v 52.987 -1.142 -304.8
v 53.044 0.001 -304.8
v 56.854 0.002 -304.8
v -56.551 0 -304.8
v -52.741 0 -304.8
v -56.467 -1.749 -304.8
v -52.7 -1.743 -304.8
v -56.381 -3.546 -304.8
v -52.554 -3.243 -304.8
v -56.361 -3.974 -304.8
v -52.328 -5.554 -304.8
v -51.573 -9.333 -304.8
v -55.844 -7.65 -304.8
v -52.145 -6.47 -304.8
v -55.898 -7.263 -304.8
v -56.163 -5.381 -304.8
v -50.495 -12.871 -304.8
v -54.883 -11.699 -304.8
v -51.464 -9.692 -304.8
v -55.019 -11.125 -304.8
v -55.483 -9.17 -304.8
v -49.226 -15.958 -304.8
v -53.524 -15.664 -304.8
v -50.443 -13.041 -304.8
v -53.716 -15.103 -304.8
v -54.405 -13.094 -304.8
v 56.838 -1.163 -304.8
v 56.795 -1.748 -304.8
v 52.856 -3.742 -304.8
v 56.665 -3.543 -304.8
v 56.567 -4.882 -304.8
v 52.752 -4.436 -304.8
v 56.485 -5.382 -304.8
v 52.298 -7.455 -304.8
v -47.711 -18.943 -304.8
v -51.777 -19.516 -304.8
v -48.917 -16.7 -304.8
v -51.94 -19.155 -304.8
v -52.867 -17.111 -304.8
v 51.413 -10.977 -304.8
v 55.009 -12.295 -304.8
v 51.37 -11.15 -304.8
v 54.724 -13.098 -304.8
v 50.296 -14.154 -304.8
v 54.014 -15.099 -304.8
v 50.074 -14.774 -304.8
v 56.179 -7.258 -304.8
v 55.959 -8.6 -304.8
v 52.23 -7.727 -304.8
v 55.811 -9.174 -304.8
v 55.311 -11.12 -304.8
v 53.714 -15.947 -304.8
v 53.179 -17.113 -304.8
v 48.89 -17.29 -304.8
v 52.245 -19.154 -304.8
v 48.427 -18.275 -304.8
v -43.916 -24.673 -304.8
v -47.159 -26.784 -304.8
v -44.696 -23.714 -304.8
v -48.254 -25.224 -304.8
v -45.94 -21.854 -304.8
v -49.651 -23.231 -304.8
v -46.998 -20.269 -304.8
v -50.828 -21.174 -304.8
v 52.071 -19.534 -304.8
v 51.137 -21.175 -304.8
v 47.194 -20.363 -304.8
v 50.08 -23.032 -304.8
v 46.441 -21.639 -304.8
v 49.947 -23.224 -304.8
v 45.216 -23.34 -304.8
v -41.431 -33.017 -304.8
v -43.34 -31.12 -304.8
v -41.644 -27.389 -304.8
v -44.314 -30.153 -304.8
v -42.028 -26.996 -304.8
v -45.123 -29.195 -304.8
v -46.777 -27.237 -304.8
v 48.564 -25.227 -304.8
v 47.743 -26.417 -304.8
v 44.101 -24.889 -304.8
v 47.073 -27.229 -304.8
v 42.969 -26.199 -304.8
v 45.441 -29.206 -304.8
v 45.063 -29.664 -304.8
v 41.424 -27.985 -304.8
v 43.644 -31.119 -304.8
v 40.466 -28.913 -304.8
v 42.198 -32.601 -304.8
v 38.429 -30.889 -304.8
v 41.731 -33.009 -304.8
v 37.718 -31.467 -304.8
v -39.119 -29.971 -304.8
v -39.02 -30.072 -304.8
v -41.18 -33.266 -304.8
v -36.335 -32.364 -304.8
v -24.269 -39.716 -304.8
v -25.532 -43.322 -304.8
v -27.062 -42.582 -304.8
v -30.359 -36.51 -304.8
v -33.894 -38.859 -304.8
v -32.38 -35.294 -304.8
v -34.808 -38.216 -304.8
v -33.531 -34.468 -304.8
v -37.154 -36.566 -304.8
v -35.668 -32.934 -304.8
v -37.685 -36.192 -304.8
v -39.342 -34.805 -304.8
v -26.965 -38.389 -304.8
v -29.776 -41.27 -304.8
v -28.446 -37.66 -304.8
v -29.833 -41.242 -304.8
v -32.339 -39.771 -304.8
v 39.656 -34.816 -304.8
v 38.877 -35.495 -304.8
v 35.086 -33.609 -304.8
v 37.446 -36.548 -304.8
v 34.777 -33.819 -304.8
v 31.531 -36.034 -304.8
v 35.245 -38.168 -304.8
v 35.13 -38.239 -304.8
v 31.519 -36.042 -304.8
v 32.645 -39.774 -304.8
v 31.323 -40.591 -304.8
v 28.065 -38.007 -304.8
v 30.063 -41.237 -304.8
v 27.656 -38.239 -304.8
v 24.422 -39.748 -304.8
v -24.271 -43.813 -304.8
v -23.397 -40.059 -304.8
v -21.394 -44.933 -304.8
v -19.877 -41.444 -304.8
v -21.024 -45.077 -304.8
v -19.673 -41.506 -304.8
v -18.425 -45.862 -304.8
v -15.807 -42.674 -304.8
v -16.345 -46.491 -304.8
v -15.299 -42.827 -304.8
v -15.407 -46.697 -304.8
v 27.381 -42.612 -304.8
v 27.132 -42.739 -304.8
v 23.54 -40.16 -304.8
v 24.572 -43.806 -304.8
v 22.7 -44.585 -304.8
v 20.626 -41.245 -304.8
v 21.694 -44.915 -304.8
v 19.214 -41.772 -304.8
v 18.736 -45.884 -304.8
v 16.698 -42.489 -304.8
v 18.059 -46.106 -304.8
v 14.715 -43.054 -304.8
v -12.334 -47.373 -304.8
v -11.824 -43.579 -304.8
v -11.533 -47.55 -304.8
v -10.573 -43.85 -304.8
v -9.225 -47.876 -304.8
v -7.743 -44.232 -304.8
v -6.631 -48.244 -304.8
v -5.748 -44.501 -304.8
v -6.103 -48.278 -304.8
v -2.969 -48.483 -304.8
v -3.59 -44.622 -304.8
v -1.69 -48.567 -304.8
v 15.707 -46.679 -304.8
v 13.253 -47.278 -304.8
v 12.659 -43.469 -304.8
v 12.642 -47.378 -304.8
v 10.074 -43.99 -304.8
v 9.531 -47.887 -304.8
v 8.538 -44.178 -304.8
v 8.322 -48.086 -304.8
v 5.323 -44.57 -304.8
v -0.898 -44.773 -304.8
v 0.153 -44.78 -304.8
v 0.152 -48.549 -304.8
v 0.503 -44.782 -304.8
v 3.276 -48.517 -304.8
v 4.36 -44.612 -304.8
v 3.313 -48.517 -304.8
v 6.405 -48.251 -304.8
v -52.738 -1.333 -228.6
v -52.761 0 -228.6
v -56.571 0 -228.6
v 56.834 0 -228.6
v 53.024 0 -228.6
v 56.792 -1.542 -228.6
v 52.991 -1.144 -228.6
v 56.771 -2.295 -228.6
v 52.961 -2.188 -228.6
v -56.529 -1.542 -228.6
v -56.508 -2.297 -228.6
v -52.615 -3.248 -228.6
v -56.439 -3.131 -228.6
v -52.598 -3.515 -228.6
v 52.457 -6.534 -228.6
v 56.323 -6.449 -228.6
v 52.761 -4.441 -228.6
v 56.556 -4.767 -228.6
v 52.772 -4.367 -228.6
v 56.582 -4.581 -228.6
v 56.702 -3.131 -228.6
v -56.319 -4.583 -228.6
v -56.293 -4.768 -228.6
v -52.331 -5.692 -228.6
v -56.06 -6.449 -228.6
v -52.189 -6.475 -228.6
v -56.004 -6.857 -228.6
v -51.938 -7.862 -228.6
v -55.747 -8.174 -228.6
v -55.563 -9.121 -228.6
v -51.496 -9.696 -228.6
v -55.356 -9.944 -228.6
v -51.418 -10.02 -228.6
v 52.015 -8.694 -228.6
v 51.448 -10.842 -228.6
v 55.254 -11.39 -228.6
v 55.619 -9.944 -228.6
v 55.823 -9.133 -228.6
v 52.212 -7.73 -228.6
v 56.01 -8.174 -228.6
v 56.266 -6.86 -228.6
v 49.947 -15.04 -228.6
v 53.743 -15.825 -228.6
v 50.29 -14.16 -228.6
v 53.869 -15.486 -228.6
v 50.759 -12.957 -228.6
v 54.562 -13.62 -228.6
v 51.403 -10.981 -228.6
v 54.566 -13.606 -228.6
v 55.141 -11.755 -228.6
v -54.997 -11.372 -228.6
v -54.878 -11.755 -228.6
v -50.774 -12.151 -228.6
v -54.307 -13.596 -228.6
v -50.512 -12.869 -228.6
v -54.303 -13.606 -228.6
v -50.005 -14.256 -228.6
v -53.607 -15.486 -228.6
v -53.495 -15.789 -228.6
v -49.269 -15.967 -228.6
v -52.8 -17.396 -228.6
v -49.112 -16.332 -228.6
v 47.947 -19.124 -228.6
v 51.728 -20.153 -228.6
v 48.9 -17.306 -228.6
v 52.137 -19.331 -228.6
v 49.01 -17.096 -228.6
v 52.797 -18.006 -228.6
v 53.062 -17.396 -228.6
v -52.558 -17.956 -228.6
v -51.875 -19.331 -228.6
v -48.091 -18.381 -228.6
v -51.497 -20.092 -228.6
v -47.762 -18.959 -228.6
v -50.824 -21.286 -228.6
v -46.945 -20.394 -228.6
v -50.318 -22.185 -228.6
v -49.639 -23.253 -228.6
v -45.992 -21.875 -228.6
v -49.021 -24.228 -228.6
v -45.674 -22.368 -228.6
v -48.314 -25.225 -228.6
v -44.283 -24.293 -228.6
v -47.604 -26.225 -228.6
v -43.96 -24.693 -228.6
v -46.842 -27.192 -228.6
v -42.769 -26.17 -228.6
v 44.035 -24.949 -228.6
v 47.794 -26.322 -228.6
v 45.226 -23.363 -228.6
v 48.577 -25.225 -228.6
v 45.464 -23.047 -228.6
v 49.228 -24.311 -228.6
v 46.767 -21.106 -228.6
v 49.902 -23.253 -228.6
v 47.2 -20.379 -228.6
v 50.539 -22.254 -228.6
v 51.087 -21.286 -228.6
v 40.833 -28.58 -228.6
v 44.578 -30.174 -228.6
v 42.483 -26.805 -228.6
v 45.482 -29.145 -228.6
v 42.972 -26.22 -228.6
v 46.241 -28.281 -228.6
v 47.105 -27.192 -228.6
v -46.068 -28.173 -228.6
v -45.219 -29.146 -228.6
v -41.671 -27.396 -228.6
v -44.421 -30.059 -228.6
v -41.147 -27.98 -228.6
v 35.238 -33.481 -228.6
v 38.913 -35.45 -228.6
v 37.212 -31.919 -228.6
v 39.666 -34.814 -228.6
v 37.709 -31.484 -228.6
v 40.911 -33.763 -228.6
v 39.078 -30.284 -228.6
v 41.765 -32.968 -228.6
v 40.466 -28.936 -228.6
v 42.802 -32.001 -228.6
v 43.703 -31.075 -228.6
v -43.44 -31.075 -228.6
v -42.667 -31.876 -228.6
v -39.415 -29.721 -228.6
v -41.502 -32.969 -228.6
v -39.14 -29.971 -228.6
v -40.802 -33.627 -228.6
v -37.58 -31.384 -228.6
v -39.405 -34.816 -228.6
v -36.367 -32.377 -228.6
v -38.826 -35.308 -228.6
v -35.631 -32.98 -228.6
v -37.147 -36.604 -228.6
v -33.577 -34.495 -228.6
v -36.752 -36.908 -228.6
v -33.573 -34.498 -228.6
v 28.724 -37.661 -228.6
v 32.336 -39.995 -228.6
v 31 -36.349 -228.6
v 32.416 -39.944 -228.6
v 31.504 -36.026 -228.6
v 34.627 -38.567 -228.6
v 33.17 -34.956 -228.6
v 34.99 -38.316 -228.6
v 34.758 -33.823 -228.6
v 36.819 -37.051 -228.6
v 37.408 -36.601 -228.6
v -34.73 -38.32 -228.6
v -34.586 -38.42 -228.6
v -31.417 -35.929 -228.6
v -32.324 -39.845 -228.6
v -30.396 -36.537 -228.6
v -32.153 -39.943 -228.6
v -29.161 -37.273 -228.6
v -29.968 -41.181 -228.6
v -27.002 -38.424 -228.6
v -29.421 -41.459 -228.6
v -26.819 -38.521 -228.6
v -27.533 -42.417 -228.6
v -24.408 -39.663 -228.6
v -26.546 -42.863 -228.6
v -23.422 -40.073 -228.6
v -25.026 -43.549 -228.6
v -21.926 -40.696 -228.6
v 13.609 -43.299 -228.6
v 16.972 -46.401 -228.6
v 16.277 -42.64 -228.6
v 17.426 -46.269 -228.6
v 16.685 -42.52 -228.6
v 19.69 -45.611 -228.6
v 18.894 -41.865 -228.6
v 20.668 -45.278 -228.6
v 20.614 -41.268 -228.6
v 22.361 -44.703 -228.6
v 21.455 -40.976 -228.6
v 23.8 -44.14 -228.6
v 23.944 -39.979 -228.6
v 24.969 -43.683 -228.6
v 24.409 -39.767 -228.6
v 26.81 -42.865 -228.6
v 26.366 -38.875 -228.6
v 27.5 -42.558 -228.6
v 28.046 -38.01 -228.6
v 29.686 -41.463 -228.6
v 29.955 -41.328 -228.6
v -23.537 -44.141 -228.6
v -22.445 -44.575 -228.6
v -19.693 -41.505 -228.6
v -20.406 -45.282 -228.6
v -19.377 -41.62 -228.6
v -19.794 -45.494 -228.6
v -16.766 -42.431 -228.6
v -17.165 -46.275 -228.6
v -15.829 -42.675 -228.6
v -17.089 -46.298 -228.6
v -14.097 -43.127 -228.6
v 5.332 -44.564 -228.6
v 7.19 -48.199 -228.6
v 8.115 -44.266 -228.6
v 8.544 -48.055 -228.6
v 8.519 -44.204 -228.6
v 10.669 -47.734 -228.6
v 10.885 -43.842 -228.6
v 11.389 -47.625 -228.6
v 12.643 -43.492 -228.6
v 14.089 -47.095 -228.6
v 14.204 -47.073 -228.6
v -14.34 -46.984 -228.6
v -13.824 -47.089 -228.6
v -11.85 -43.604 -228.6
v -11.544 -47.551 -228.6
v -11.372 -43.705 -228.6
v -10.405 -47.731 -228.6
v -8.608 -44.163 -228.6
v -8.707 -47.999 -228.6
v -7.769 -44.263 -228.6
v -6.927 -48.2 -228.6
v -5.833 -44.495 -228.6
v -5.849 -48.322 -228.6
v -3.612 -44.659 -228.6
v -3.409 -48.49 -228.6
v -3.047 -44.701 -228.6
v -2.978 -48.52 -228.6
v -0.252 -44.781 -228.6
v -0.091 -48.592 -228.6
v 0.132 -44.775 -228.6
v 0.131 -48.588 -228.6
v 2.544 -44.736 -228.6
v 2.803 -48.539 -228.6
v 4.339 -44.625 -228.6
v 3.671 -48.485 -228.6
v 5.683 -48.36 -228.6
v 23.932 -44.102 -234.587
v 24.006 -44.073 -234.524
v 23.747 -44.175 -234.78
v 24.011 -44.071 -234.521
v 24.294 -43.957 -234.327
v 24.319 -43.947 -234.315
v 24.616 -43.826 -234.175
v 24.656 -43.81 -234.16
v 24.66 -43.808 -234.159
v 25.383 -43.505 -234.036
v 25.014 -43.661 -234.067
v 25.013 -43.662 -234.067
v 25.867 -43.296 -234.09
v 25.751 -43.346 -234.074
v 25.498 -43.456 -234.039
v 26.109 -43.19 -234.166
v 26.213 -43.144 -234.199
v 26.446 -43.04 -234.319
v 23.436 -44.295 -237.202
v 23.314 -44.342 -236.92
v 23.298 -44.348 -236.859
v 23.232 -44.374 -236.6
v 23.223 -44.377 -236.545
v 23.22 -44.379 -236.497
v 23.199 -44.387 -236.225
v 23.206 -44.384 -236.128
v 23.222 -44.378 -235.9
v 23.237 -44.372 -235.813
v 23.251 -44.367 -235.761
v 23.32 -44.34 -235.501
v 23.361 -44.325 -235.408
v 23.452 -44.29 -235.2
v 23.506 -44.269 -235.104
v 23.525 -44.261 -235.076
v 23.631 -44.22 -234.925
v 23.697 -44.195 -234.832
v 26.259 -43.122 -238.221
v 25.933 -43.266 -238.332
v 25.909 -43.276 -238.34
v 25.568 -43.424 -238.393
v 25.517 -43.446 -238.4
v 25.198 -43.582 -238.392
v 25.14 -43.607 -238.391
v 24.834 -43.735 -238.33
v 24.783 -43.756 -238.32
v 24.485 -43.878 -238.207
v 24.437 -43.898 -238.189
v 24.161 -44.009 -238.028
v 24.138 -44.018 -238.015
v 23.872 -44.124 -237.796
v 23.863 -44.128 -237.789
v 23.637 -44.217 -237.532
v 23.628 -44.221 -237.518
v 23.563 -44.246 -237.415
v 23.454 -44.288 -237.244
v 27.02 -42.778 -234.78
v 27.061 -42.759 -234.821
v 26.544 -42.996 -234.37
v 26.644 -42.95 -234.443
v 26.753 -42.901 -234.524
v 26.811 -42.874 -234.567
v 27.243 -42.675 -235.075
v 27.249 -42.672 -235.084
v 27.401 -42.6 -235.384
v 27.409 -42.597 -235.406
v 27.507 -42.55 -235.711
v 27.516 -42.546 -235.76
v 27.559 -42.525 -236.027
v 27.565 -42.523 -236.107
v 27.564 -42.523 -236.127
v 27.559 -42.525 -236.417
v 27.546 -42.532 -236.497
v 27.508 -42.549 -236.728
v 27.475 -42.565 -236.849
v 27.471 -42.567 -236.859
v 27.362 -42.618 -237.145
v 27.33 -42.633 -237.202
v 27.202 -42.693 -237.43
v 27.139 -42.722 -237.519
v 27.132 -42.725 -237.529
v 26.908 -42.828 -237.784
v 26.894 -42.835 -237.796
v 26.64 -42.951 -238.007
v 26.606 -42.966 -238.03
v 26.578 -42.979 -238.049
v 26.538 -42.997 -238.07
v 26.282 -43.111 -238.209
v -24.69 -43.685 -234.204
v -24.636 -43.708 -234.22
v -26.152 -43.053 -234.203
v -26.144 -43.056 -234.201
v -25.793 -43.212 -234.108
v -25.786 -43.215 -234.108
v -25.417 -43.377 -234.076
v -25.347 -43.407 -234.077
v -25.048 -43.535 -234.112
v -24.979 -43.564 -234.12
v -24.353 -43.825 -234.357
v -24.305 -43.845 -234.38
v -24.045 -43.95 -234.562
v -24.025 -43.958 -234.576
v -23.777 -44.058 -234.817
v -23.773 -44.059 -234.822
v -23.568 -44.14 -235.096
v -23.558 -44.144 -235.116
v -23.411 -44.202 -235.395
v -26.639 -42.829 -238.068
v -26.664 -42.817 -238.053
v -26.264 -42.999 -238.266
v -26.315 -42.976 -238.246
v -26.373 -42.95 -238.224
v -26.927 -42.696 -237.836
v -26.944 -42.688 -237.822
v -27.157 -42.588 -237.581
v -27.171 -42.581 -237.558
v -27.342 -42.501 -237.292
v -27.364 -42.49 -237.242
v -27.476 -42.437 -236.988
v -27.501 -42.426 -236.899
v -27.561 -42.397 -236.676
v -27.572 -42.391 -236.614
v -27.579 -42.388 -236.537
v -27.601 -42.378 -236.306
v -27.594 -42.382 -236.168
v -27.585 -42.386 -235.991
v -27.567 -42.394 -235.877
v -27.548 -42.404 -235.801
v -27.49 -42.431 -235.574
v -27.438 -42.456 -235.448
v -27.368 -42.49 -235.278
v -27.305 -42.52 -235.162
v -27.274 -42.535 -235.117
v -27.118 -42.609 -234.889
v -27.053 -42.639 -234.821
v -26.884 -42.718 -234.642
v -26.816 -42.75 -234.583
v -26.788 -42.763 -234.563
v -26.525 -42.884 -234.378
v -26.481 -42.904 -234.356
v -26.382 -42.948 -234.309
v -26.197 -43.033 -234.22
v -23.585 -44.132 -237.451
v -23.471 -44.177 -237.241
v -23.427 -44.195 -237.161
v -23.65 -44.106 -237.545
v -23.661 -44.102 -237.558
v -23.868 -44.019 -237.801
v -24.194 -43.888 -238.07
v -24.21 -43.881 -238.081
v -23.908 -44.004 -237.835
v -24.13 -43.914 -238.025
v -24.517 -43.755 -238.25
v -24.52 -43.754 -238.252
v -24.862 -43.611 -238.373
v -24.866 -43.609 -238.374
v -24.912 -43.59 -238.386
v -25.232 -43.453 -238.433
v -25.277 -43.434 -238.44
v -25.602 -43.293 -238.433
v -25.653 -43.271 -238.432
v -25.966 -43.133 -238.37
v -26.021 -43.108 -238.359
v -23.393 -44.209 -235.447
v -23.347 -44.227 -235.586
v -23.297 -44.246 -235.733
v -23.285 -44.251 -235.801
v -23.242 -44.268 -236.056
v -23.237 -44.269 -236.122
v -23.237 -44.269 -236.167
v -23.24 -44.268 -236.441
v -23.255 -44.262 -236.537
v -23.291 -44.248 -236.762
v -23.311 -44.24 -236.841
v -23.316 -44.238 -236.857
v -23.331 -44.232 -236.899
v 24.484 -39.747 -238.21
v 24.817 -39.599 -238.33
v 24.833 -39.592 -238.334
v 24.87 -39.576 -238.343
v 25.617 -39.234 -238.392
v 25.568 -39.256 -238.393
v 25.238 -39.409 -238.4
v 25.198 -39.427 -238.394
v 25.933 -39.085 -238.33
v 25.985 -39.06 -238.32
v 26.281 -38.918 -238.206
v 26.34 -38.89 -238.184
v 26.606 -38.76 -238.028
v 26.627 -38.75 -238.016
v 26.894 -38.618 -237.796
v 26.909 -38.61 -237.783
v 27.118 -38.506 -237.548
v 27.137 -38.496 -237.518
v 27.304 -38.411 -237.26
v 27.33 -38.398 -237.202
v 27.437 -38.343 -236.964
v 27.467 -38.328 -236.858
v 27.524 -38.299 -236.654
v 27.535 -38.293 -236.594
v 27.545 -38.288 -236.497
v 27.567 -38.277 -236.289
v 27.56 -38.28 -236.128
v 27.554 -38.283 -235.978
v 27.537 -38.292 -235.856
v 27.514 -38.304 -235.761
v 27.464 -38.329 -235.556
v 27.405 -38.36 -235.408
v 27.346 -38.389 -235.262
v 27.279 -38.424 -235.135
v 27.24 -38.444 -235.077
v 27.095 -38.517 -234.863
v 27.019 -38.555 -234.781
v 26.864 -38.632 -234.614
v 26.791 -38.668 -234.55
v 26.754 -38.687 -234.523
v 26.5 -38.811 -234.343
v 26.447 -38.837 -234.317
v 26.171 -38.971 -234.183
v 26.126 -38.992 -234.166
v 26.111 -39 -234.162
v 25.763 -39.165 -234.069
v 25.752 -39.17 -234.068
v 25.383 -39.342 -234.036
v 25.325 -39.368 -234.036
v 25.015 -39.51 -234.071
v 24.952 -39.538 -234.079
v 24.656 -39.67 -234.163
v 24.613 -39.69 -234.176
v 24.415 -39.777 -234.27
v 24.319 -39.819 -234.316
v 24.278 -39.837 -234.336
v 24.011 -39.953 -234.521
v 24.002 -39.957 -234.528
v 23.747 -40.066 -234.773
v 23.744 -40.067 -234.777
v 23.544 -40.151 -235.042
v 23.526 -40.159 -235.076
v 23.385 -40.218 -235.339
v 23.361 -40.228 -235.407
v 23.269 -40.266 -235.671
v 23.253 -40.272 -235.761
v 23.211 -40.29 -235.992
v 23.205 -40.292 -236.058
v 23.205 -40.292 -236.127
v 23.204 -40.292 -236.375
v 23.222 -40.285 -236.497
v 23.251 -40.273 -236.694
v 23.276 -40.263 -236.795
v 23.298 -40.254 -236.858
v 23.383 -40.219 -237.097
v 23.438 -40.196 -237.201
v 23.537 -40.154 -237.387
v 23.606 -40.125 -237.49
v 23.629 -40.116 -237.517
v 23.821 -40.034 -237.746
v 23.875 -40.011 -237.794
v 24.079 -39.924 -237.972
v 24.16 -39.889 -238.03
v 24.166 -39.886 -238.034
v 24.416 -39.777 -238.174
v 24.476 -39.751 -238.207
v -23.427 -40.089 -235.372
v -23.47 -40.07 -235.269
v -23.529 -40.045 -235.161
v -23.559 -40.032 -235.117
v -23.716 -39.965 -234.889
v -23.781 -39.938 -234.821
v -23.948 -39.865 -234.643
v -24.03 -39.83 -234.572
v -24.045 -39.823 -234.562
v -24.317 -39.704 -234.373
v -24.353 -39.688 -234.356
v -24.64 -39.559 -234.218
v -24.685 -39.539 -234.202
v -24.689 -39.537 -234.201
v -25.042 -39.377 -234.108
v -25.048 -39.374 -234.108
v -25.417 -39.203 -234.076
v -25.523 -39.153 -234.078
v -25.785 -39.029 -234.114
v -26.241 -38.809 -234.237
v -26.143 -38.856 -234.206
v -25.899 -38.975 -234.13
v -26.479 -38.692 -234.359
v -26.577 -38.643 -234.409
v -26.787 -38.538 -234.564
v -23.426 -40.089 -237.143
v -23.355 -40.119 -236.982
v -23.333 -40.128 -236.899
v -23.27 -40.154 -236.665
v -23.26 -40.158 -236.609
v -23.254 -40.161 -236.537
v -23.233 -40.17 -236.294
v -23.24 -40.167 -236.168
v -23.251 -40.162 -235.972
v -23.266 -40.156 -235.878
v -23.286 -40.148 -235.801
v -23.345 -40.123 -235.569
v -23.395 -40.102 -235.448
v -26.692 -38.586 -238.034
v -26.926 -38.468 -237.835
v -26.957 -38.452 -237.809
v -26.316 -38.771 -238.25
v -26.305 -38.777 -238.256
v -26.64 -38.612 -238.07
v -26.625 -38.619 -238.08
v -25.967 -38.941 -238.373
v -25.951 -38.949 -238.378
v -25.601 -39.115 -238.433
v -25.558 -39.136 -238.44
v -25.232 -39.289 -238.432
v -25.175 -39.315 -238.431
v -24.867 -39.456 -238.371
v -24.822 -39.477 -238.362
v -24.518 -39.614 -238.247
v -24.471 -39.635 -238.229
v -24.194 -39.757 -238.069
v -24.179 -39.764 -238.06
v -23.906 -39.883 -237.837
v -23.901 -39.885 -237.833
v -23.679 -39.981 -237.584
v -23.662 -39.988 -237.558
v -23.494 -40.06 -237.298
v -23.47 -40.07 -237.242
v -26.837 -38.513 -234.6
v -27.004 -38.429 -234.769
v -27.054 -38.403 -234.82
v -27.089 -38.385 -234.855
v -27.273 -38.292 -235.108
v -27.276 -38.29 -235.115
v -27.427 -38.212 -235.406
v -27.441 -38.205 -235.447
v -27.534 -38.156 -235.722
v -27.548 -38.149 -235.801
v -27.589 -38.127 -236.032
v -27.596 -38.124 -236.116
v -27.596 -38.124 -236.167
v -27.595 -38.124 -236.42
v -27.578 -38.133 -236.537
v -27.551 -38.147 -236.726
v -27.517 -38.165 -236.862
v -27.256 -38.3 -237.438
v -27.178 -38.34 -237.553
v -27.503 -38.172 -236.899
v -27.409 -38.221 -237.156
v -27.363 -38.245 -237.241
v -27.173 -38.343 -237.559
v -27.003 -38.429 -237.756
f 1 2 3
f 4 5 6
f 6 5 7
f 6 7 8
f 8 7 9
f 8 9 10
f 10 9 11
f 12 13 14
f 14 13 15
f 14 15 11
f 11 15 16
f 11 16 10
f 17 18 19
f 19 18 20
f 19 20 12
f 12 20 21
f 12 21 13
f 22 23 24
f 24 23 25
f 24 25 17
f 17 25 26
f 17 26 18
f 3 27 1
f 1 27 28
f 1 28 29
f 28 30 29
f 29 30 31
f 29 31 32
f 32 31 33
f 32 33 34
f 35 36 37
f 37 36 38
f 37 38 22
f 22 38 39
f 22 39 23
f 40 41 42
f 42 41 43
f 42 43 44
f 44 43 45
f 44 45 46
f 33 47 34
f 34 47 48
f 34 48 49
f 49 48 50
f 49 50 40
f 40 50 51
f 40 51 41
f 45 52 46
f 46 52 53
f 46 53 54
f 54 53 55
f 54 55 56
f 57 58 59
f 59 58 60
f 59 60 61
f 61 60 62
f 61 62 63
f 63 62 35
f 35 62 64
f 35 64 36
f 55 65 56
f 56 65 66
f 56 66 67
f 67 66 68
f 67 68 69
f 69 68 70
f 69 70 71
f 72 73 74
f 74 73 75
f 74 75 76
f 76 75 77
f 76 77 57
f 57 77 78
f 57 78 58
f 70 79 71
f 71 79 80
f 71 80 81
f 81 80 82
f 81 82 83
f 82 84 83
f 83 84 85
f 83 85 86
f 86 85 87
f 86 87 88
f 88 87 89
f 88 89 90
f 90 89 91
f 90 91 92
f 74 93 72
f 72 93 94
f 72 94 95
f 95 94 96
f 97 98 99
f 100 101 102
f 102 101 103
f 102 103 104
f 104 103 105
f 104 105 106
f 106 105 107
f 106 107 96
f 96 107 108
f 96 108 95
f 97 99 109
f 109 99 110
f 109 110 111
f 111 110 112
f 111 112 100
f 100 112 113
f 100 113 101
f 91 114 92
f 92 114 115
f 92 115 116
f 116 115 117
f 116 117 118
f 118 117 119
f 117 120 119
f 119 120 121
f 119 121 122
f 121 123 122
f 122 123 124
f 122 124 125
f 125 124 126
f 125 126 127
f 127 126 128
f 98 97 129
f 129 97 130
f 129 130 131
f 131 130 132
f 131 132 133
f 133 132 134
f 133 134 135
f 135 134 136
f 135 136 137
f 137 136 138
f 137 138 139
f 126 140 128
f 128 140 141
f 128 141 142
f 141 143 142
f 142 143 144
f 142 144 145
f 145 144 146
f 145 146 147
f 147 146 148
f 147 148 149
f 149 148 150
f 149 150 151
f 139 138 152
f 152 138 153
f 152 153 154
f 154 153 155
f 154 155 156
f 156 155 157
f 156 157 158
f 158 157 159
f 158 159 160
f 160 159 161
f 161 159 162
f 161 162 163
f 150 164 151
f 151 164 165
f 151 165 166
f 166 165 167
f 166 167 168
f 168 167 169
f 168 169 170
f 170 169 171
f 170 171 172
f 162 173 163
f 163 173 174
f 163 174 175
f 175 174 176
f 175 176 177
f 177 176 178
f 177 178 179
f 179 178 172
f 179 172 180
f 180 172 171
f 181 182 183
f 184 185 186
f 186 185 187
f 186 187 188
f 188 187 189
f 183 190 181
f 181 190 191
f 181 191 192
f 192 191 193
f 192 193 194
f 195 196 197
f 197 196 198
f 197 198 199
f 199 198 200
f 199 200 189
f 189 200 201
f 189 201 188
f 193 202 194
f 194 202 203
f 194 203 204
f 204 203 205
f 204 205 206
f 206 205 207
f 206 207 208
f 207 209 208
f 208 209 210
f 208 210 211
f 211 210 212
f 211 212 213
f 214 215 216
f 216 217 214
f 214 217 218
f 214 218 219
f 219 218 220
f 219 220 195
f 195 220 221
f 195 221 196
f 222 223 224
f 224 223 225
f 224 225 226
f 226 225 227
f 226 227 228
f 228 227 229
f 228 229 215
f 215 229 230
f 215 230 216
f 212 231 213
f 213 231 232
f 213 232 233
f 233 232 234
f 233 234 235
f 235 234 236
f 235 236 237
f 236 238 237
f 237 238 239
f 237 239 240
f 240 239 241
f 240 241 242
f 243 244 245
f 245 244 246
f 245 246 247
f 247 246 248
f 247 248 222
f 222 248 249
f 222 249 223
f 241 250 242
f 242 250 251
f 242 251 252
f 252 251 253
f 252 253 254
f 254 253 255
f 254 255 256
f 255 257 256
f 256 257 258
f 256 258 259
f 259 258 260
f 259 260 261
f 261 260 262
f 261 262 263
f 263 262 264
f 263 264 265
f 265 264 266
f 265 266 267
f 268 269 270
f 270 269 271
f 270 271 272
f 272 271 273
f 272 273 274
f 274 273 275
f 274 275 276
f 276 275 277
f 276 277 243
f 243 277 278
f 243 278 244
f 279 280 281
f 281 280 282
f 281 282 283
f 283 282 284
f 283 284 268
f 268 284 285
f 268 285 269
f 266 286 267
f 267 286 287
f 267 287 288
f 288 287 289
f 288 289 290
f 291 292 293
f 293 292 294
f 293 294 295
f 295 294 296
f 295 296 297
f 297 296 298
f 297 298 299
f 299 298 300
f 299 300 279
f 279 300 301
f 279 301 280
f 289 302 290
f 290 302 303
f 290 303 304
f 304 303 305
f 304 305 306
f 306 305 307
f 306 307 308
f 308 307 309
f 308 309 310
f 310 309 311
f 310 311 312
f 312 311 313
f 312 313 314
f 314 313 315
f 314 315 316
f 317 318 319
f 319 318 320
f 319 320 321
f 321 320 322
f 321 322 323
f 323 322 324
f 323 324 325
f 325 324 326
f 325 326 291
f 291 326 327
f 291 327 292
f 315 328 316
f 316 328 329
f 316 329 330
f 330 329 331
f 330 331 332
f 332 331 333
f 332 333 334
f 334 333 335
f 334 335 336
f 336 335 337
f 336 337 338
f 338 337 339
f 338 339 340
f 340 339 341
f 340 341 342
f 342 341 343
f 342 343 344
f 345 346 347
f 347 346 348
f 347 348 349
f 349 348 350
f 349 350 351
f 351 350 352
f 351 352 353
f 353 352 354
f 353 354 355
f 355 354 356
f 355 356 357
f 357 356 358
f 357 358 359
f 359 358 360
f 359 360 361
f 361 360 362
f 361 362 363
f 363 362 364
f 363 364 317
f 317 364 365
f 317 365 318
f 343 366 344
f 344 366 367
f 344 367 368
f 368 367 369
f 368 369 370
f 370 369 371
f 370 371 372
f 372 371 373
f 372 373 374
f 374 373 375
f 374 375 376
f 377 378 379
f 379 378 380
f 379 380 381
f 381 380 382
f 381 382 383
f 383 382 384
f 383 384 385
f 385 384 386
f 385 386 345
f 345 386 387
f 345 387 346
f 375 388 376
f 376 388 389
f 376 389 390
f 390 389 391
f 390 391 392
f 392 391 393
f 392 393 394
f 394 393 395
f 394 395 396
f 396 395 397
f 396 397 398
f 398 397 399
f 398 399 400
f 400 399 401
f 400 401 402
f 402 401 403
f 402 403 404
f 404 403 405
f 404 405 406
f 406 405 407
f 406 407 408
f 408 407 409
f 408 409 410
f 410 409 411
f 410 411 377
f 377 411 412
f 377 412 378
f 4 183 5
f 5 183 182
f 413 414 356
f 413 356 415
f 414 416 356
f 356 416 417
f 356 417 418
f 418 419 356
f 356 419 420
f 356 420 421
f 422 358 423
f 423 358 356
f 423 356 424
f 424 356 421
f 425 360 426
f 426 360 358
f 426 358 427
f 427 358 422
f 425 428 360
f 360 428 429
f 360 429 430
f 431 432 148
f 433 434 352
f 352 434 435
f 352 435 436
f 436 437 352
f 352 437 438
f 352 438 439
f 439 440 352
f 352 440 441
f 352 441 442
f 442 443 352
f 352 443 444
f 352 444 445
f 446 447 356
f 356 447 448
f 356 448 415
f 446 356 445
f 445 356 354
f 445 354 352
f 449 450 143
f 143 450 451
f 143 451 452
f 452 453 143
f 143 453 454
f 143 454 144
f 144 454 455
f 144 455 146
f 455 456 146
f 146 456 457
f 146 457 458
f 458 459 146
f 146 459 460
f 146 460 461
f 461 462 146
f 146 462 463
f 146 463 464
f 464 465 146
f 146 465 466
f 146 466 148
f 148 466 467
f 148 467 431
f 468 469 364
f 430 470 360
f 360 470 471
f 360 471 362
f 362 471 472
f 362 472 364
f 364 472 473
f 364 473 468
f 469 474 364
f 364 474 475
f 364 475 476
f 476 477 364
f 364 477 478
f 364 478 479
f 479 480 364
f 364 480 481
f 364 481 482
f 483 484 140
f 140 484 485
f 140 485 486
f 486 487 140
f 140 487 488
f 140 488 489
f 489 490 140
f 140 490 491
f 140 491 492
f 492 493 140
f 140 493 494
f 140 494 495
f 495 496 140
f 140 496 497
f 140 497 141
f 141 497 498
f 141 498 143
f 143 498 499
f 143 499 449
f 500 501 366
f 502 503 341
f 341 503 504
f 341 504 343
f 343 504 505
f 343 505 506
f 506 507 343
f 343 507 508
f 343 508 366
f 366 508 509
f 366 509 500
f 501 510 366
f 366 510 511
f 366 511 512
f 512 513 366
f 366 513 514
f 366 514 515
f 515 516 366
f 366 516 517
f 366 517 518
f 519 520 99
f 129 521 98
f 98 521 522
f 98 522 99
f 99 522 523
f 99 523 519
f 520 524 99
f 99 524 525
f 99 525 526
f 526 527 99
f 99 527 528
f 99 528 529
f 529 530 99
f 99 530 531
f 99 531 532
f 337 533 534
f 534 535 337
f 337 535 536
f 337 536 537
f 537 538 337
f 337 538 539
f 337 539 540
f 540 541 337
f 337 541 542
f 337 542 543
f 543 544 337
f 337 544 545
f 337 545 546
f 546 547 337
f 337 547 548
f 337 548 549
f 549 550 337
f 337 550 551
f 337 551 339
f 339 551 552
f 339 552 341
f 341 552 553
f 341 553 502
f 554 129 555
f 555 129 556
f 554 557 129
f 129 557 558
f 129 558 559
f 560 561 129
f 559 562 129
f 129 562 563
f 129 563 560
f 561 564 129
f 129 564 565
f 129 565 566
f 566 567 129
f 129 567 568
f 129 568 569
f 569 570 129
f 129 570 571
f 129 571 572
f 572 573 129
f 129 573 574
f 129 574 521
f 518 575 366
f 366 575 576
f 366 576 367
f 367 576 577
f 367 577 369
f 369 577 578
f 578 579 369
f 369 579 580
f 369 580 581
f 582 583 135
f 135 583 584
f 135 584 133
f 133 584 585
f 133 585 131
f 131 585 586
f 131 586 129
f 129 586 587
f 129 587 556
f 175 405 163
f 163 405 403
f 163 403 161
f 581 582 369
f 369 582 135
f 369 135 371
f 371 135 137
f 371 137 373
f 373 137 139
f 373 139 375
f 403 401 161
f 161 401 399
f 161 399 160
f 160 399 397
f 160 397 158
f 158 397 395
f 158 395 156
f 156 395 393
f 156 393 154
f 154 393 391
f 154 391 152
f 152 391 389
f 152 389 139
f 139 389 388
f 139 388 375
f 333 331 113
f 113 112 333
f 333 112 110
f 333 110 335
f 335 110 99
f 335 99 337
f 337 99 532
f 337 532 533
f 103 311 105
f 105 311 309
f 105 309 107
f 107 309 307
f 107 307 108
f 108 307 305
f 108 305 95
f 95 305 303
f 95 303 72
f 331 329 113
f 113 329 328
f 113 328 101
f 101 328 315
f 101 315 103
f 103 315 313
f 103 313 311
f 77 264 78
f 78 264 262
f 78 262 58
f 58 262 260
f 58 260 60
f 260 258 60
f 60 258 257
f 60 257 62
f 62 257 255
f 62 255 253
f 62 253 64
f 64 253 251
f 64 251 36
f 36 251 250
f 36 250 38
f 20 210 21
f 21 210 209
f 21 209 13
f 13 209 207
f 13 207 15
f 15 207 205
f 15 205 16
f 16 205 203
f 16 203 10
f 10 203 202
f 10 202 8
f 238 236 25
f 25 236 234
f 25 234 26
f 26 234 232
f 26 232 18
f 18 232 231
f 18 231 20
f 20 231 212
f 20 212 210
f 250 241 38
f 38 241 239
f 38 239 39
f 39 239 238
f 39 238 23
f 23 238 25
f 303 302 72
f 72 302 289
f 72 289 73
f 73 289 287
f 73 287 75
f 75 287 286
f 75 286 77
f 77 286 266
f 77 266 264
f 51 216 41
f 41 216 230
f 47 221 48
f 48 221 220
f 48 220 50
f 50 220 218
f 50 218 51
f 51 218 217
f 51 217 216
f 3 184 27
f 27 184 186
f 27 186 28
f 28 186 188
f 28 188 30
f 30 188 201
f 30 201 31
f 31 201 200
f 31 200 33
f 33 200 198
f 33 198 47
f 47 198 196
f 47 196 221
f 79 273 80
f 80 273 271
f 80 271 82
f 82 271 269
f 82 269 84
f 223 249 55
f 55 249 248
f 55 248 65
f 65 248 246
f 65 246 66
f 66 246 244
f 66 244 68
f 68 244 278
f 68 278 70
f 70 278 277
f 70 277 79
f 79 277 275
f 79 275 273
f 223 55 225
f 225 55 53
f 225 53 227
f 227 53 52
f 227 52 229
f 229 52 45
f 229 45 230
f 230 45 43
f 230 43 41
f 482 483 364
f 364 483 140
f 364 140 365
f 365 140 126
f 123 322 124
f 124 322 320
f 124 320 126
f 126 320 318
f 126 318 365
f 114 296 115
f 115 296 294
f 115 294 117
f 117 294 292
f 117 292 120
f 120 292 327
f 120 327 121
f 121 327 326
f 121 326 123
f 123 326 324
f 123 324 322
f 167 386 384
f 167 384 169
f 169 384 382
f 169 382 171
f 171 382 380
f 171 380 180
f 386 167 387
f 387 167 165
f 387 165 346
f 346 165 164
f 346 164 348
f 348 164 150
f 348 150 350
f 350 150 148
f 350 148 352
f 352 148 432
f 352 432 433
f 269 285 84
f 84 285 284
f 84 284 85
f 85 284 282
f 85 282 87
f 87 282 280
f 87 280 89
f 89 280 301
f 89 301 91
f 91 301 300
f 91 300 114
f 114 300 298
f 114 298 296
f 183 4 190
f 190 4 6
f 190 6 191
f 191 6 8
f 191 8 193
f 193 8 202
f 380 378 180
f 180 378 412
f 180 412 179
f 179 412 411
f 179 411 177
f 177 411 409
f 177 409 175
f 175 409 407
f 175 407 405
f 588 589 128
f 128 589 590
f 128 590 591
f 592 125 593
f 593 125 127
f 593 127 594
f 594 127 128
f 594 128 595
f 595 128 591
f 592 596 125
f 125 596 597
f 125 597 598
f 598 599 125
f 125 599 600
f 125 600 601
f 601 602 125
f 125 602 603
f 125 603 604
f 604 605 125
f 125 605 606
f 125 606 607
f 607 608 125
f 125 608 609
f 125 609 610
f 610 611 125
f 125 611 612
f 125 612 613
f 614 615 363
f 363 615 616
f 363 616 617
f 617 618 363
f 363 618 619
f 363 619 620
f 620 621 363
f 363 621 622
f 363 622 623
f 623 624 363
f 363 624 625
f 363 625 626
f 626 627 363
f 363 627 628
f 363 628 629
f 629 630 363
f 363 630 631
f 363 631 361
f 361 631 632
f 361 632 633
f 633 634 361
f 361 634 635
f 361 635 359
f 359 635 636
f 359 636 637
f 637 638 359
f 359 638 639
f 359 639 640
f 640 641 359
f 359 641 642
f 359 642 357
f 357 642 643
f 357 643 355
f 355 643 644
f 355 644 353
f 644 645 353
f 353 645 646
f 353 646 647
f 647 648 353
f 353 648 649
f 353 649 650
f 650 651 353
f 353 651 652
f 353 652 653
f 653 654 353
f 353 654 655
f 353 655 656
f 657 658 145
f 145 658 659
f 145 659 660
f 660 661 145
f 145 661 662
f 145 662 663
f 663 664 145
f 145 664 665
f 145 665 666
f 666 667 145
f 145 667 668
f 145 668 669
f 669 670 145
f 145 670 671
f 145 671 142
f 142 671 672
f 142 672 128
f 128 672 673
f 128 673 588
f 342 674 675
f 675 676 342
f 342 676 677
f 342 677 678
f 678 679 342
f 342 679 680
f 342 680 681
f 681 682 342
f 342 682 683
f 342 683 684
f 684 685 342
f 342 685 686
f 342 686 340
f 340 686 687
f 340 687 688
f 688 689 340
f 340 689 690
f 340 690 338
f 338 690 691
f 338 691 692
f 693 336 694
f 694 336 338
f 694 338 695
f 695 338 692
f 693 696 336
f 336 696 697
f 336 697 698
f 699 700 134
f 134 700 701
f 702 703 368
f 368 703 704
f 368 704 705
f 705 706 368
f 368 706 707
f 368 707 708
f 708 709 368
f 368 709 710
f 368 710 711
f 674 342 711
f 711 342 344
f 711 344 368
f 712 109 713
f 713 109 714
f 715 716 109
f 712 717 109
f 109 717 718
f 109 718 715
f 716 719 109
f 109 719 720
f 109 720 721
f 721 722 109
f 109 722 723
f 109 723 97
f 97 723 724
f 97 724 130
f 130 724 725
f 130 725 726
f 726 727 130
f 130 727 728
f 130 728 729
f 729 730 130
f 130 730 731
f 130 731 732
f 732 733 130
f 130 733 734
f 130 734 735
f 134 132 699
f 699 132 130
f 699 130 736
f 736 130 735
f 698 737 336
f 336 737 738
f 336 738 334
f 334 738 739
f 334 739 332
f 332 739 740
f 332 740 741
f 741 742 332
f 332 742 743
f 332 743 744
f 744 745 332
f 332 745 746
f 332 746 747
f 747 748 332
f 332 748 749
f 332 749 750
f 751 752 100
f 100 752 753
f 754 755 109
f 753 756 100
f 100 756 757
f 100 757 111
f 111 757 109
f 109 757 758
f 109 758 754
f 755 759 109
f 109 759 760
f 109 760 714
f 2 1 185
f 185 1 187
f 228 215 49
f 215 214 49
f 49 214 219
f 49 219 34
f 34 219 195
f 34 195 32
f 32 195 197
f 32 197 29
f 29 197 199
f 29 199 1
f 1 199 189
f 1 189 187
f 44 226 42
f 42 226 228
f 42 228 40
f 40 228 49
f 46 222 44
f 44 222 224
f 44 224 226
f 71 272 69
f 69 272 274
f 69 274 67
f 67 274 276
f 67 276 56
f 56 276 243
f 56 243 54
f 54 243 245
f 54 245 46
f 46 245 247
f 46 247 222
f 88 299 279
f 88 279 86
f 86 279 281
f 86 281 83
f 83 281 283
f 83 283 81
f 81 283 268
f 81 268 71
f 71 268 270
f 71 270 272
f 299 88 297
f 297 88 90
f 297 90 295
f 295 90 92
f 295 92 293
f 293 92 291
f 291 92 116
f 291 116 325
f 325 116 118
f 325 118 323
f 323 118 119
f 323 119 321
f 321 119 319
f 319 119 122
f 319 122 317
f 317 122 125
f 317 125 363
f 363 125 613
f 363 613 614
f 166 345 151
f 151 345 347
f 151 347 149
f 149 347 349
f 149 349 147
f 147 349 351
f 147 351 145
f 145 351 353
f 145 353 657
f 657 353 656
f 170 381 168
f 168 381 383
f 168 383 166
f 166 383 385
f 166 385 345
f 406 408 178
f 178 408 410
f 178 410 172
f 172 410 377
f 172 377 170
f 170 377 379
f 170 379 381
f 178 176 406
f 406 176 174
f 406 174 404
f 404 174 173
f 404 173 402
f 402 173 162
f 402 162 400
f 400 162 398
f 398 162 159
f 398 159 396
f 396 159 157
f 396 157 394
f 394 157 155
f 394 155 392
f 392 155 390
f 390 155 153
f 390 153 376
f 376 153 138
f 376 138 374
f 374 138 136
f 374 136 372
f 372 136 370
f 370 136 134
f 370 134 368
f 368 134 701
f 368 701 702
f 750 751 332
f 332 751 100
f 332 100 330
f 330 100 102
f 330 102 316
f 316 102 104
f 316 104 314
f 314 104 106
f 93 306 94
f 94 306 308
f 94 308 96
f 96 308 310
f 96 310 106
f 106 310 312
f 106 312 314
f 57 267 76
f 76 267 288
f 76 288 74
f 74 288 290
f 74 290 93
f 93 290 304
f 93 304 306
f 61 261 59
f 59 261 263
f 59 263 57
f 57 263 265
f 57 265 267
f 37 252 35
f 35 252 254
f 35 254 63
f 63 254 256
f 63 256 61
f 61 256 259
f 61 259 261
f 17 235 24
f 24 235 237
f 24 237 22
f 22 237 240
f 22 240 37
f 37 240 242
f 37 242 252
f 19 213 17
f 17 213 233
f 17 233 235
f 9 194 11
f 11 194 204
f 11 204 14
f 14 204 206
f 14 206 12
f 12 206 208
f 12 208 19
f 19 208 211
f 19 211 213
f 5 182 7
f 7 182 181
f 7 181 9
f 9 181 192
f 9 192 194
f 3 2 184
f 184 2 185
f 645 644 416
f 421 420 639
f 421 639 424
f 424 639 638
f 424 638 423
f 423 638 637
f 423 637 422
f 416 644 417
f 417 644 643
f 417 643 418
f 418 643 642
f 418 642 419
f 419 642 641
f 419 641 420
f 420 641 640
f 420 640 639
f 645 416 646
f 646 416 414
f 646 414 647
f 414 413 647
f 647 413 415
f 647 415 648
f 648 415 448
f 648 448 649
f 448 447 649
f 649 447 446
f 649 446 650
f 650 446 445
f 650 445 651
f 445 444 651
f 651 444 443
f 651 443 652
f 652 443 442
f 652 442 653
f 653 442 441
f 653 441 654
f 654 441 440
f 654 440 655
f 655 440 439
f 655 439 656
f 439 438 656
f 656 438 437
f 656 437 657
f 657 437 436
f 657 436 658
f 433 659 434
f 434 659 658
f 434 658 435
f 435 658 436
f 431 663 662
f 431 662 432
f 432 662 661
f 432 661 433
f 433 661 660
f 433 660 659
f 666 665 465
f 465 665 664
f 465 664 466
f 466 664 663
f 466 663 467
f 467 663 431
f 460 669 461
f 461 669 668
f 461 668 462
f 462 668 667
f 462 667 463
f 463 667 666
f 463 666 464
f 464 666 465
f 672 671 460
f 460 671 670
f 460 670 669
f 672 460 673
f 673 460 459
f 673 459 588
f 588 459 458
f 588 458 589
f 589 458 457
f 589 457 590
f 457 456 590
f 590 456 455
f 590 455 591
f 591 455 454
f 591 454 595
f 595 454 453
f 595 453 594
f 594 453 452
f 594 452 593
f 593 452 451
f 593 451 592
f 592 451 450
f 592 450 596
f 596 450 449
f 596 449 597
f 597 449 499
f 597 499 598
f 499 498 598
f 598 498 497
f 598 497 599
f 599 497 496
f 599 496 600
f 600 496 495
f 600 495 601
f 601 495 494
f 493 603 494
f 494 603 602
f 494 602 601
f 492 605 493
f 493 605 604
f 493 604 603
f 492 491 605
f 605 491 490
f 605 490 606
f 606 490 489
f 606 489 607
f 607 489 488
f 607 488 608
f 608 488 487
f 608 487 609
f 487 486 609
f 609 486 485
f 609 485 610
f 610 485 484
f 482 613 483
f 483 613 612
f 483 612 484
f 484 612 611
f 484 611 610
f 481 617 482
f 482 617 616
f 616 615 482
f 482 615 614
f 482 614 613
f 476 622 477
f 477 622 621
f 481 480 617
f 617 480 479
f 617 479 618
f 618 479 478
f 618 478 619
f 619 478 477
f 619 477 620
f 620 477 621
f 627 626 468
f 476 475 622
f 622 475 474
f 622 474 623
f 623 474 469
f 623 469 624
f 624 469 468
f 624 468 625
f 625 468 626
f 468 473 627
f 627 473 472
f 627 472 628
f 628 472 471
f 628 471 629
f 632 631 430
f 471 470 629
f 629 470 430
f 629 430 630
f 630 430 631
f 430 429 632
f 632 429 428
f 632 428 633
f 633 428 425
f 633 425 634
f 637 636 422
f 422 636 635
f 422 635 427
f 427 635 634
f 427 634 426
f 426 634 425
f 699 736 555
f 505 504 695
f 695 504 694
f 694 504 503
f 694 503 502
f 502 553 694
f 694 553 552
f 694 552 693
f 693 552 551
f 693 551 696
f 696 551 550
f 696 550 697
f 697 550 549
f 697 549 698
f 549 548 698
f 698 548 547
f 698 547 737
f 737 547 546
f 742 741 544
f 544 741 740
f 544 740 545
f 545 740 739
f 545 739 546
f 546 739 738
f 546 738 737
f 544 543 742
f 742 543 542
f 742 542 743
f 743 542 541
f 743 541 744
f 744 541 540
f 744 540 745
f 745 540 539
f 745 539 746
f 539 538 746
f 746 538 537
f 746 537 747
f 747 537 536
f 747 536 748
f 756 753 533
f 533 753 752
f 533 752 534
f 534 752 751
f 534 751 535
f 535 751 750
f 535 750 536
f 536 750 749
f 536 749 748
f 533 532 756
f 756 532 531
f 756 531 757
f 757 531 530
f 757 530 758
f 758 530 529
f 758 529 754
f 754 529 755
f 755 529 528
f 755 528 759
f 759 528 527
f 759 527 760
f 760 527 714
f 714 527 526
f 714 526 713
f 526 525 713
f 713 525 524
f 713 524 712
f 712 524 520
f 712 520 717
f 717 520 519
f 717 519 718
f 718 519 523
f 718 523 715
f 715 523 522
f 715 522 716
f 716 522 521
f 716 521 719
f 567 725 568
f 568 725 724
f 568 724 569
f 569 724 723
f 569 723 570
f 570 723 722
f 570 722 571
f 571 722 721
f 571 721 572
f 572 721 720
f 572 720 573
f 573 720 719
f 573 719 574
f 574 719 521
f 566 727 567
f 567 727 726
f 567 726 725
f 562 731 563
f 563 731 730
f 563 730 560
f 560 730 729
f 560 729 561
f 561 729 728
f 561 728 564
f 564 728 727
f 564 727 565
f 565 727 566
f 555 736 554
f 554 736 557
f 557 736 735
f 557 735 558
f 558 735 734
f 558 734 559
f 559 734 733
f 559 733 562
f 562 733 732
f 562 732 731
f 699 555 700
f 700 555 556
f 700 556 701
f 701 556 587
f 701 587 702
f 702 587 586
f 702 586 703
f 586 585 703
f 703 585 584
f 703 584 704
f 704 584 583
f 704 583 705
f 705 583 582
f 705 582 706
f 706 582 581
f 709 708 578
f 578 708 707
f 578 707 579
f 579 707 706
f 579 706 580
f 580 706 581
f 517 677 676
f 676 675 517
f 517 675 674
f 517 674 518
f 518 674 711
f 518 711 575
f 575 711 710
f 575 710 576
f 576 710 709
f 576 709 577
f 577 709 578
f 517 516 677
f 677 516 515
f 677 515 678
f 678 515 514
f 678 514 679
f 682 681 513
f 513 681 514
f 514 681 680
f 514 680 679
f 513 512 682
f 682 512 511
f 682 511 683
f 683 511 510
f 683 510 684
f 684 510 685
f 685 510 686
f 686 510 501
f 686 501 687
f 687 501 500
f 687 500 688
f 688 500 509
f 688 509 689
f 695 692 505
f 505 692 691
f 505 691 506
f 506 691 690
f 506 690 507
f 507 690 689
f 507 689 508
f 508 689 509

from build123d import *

# Parameters (mm, degrees)
SKETCH18_R         = 2.1844
CUT_EXTRUDE1_DEPTH = 314.841780485


with BuildPart() as part:
    # Loft1: read off the stored shape, not the designer's step
    # Loft1: loft between two sections, ruled curve by curve
    loft1_from = [
        Edge.make_bspline([(56.833832956, 0, -228.6), (56.833832956, -24.296302856, -228.6), (37.93302454, -48.592605712, -228.6), (-37.670209127, -48.592605712, -228.6), (-56.571017544, -24.296302856, -228.6), (-56.571017544, 0, -228.6)], [0, 0, 0, 0, 0.5, 0.5, 1, 1, 1, 1], 3, [1, 0.666666667, 0.5, 0.5, 0.666666667, 1]),
        Edge.make_bspline([(-52.761017544, 0, -228.6), (-52.761017544, -4.747279447, -228.6), (-51.402770393, -11.806188932, -228.6), (-45.595697561, -23.613386766, -228.6), (-39.795169121, -29.862955228, -228.6), (-30.718583767, -36.674634262, -228.6), (-20.272155915, -42.261246959, -228.6), (-8.609583282, -44.495586175, -228.6), (5.258963144, -45.021190556, -228.6), (17.65948625, -43.279675379, -228.6), (30.464702909, -37.058928058, -228.6), (38.535712181, -31.060250812, -228.6), (44.862969288, -24.583491802, -228.6), (51.190783343, -13.941223772, -228.6), (53.023832956, -5.077291503, -228.6), (53.023832956, 0, -228.6)], [0, 0, 0, 0, 0.092670327, 0.138032037, 0.255929417, 0.255929417, 0.359592664, 0.484831486, 0.484831486, 0.630530284, 0.725178151, 0.760432961, 0.82657985, 0.900919869, 1, 1, 1, 1], 3),
        Edge.make_bspline([(53.023832956, 0, -228.6), (53.658832956, 0, -228.6), (54.293832956, 0, -228.6), (55.563832956, 0, -228.6), (56.198832956, 0, -228.6), (56.833832956, 0, -228.6)], [0, 0, 0, 0, 0.5, 0.5, 1, 1, 1, 1], 3),
        Edge.make_line((-52.761017544, 0, -228.6), (-56.571017544, 0, -228.6)),
    ]
    loft1_to = [
        Edge.make_bspline([(56.854039108, 0.001519688, -304.8), (56.855077905, -28.463722616, -304.8), (33.368424055, -48.592160594, -304.8), (-33.063422969, -48.593050818, -304.8), (-56.550811364, -28.465242318, -304.8), (-56.550811364, 0, -304.8)], [0, 0, 0, 0, 0.5, 0.5, 1, 1, 1, 1], 3, [1, 0.647597082, 0.521143499, 0.521143499, 0.647597082, 1]),
        Edge.make_bspline([(-52.740811364, 0, -304.8), (-52.740749216, -4.747279446, -304.8), (-51.382409655, -11.80617115, -304.8), (-45.575182253, -23.613292961, -304.8), (-39.774571999, -29.862785486, -304.8), (-30.697897472, -36.674345695, -304.8), (-20.251396485, -42.260821635, -304.8), (-8.588794603, -44.495008174, -304.8), (5.279758702, -45.020430998, -304.8), (17.680259009, -43.278753482, -304.8), (30.485394229, -37.057838525, -304.8), (38.556324971, -31.059055621, -304.8), (44.883497288, -24.582213779, -304.8), (51.211172022, -13.939862911, -304.8), (53.044105595, -5.075906646, -304.8), (53.044039127, 0.001384857, -304.8)], [0, 0, 0, 0, 0.092670327, 0.138032037, 0.255929417, 0.255929417, 0.359592664, 0.484831486, 0.484831486, 0.630530284, 0.725178151, 0.760432961, 0.82657985, 0.900919869, 1, 1, 1, 1], 3),
        Edge.make_bspline([(53.044039127, 0.001384857, -304.8), (53.679039124, 0.001407329, -304.8), (54.31403912, 0.001429801, -304.8), (55.584039114, 0.001474744, -304.8), (56.219039111, 0.001497216, -304.8), (56.854039108, 0.001519688, -304.8)], [0, 0, 0, 0, 0.5, 0.5, 1, 1, 1, 1], 3),
        Edge.make_line((-52.740811364, 0, -304.8), (-56.550811364, 0, -304.8)),
    ]
    loft1 = Solid(Shell([*[Face.make_surface_from_curves(loft1_from[k], loft1_to[k]) for k in range(4)], Face(Wire(loft1_from)), Face(Wire(loft1_to))]))
    add(loft1)

    # Sketch18 → Cut-Extrude1 (cut, through all)
    with BuildSketch(Plane(origin=(0, 0, 0), x_dir=(1, 0, 0), z_dir=(0, 1, 0))):
        with Locations(Location((25.383246846, 236.22, 0), (0, 0, 270))):
            Circle(SKETCH18_R)
        with Locations(Location((-25.416737266, 236.260177413, 0), (0, 0, 270))):
            Circle(SKETCH18_R)
    extrude(amount=-CUT_EXTRUDE1_DEPTH, mode=Mode.SUBTRACT)


solid = part.part
